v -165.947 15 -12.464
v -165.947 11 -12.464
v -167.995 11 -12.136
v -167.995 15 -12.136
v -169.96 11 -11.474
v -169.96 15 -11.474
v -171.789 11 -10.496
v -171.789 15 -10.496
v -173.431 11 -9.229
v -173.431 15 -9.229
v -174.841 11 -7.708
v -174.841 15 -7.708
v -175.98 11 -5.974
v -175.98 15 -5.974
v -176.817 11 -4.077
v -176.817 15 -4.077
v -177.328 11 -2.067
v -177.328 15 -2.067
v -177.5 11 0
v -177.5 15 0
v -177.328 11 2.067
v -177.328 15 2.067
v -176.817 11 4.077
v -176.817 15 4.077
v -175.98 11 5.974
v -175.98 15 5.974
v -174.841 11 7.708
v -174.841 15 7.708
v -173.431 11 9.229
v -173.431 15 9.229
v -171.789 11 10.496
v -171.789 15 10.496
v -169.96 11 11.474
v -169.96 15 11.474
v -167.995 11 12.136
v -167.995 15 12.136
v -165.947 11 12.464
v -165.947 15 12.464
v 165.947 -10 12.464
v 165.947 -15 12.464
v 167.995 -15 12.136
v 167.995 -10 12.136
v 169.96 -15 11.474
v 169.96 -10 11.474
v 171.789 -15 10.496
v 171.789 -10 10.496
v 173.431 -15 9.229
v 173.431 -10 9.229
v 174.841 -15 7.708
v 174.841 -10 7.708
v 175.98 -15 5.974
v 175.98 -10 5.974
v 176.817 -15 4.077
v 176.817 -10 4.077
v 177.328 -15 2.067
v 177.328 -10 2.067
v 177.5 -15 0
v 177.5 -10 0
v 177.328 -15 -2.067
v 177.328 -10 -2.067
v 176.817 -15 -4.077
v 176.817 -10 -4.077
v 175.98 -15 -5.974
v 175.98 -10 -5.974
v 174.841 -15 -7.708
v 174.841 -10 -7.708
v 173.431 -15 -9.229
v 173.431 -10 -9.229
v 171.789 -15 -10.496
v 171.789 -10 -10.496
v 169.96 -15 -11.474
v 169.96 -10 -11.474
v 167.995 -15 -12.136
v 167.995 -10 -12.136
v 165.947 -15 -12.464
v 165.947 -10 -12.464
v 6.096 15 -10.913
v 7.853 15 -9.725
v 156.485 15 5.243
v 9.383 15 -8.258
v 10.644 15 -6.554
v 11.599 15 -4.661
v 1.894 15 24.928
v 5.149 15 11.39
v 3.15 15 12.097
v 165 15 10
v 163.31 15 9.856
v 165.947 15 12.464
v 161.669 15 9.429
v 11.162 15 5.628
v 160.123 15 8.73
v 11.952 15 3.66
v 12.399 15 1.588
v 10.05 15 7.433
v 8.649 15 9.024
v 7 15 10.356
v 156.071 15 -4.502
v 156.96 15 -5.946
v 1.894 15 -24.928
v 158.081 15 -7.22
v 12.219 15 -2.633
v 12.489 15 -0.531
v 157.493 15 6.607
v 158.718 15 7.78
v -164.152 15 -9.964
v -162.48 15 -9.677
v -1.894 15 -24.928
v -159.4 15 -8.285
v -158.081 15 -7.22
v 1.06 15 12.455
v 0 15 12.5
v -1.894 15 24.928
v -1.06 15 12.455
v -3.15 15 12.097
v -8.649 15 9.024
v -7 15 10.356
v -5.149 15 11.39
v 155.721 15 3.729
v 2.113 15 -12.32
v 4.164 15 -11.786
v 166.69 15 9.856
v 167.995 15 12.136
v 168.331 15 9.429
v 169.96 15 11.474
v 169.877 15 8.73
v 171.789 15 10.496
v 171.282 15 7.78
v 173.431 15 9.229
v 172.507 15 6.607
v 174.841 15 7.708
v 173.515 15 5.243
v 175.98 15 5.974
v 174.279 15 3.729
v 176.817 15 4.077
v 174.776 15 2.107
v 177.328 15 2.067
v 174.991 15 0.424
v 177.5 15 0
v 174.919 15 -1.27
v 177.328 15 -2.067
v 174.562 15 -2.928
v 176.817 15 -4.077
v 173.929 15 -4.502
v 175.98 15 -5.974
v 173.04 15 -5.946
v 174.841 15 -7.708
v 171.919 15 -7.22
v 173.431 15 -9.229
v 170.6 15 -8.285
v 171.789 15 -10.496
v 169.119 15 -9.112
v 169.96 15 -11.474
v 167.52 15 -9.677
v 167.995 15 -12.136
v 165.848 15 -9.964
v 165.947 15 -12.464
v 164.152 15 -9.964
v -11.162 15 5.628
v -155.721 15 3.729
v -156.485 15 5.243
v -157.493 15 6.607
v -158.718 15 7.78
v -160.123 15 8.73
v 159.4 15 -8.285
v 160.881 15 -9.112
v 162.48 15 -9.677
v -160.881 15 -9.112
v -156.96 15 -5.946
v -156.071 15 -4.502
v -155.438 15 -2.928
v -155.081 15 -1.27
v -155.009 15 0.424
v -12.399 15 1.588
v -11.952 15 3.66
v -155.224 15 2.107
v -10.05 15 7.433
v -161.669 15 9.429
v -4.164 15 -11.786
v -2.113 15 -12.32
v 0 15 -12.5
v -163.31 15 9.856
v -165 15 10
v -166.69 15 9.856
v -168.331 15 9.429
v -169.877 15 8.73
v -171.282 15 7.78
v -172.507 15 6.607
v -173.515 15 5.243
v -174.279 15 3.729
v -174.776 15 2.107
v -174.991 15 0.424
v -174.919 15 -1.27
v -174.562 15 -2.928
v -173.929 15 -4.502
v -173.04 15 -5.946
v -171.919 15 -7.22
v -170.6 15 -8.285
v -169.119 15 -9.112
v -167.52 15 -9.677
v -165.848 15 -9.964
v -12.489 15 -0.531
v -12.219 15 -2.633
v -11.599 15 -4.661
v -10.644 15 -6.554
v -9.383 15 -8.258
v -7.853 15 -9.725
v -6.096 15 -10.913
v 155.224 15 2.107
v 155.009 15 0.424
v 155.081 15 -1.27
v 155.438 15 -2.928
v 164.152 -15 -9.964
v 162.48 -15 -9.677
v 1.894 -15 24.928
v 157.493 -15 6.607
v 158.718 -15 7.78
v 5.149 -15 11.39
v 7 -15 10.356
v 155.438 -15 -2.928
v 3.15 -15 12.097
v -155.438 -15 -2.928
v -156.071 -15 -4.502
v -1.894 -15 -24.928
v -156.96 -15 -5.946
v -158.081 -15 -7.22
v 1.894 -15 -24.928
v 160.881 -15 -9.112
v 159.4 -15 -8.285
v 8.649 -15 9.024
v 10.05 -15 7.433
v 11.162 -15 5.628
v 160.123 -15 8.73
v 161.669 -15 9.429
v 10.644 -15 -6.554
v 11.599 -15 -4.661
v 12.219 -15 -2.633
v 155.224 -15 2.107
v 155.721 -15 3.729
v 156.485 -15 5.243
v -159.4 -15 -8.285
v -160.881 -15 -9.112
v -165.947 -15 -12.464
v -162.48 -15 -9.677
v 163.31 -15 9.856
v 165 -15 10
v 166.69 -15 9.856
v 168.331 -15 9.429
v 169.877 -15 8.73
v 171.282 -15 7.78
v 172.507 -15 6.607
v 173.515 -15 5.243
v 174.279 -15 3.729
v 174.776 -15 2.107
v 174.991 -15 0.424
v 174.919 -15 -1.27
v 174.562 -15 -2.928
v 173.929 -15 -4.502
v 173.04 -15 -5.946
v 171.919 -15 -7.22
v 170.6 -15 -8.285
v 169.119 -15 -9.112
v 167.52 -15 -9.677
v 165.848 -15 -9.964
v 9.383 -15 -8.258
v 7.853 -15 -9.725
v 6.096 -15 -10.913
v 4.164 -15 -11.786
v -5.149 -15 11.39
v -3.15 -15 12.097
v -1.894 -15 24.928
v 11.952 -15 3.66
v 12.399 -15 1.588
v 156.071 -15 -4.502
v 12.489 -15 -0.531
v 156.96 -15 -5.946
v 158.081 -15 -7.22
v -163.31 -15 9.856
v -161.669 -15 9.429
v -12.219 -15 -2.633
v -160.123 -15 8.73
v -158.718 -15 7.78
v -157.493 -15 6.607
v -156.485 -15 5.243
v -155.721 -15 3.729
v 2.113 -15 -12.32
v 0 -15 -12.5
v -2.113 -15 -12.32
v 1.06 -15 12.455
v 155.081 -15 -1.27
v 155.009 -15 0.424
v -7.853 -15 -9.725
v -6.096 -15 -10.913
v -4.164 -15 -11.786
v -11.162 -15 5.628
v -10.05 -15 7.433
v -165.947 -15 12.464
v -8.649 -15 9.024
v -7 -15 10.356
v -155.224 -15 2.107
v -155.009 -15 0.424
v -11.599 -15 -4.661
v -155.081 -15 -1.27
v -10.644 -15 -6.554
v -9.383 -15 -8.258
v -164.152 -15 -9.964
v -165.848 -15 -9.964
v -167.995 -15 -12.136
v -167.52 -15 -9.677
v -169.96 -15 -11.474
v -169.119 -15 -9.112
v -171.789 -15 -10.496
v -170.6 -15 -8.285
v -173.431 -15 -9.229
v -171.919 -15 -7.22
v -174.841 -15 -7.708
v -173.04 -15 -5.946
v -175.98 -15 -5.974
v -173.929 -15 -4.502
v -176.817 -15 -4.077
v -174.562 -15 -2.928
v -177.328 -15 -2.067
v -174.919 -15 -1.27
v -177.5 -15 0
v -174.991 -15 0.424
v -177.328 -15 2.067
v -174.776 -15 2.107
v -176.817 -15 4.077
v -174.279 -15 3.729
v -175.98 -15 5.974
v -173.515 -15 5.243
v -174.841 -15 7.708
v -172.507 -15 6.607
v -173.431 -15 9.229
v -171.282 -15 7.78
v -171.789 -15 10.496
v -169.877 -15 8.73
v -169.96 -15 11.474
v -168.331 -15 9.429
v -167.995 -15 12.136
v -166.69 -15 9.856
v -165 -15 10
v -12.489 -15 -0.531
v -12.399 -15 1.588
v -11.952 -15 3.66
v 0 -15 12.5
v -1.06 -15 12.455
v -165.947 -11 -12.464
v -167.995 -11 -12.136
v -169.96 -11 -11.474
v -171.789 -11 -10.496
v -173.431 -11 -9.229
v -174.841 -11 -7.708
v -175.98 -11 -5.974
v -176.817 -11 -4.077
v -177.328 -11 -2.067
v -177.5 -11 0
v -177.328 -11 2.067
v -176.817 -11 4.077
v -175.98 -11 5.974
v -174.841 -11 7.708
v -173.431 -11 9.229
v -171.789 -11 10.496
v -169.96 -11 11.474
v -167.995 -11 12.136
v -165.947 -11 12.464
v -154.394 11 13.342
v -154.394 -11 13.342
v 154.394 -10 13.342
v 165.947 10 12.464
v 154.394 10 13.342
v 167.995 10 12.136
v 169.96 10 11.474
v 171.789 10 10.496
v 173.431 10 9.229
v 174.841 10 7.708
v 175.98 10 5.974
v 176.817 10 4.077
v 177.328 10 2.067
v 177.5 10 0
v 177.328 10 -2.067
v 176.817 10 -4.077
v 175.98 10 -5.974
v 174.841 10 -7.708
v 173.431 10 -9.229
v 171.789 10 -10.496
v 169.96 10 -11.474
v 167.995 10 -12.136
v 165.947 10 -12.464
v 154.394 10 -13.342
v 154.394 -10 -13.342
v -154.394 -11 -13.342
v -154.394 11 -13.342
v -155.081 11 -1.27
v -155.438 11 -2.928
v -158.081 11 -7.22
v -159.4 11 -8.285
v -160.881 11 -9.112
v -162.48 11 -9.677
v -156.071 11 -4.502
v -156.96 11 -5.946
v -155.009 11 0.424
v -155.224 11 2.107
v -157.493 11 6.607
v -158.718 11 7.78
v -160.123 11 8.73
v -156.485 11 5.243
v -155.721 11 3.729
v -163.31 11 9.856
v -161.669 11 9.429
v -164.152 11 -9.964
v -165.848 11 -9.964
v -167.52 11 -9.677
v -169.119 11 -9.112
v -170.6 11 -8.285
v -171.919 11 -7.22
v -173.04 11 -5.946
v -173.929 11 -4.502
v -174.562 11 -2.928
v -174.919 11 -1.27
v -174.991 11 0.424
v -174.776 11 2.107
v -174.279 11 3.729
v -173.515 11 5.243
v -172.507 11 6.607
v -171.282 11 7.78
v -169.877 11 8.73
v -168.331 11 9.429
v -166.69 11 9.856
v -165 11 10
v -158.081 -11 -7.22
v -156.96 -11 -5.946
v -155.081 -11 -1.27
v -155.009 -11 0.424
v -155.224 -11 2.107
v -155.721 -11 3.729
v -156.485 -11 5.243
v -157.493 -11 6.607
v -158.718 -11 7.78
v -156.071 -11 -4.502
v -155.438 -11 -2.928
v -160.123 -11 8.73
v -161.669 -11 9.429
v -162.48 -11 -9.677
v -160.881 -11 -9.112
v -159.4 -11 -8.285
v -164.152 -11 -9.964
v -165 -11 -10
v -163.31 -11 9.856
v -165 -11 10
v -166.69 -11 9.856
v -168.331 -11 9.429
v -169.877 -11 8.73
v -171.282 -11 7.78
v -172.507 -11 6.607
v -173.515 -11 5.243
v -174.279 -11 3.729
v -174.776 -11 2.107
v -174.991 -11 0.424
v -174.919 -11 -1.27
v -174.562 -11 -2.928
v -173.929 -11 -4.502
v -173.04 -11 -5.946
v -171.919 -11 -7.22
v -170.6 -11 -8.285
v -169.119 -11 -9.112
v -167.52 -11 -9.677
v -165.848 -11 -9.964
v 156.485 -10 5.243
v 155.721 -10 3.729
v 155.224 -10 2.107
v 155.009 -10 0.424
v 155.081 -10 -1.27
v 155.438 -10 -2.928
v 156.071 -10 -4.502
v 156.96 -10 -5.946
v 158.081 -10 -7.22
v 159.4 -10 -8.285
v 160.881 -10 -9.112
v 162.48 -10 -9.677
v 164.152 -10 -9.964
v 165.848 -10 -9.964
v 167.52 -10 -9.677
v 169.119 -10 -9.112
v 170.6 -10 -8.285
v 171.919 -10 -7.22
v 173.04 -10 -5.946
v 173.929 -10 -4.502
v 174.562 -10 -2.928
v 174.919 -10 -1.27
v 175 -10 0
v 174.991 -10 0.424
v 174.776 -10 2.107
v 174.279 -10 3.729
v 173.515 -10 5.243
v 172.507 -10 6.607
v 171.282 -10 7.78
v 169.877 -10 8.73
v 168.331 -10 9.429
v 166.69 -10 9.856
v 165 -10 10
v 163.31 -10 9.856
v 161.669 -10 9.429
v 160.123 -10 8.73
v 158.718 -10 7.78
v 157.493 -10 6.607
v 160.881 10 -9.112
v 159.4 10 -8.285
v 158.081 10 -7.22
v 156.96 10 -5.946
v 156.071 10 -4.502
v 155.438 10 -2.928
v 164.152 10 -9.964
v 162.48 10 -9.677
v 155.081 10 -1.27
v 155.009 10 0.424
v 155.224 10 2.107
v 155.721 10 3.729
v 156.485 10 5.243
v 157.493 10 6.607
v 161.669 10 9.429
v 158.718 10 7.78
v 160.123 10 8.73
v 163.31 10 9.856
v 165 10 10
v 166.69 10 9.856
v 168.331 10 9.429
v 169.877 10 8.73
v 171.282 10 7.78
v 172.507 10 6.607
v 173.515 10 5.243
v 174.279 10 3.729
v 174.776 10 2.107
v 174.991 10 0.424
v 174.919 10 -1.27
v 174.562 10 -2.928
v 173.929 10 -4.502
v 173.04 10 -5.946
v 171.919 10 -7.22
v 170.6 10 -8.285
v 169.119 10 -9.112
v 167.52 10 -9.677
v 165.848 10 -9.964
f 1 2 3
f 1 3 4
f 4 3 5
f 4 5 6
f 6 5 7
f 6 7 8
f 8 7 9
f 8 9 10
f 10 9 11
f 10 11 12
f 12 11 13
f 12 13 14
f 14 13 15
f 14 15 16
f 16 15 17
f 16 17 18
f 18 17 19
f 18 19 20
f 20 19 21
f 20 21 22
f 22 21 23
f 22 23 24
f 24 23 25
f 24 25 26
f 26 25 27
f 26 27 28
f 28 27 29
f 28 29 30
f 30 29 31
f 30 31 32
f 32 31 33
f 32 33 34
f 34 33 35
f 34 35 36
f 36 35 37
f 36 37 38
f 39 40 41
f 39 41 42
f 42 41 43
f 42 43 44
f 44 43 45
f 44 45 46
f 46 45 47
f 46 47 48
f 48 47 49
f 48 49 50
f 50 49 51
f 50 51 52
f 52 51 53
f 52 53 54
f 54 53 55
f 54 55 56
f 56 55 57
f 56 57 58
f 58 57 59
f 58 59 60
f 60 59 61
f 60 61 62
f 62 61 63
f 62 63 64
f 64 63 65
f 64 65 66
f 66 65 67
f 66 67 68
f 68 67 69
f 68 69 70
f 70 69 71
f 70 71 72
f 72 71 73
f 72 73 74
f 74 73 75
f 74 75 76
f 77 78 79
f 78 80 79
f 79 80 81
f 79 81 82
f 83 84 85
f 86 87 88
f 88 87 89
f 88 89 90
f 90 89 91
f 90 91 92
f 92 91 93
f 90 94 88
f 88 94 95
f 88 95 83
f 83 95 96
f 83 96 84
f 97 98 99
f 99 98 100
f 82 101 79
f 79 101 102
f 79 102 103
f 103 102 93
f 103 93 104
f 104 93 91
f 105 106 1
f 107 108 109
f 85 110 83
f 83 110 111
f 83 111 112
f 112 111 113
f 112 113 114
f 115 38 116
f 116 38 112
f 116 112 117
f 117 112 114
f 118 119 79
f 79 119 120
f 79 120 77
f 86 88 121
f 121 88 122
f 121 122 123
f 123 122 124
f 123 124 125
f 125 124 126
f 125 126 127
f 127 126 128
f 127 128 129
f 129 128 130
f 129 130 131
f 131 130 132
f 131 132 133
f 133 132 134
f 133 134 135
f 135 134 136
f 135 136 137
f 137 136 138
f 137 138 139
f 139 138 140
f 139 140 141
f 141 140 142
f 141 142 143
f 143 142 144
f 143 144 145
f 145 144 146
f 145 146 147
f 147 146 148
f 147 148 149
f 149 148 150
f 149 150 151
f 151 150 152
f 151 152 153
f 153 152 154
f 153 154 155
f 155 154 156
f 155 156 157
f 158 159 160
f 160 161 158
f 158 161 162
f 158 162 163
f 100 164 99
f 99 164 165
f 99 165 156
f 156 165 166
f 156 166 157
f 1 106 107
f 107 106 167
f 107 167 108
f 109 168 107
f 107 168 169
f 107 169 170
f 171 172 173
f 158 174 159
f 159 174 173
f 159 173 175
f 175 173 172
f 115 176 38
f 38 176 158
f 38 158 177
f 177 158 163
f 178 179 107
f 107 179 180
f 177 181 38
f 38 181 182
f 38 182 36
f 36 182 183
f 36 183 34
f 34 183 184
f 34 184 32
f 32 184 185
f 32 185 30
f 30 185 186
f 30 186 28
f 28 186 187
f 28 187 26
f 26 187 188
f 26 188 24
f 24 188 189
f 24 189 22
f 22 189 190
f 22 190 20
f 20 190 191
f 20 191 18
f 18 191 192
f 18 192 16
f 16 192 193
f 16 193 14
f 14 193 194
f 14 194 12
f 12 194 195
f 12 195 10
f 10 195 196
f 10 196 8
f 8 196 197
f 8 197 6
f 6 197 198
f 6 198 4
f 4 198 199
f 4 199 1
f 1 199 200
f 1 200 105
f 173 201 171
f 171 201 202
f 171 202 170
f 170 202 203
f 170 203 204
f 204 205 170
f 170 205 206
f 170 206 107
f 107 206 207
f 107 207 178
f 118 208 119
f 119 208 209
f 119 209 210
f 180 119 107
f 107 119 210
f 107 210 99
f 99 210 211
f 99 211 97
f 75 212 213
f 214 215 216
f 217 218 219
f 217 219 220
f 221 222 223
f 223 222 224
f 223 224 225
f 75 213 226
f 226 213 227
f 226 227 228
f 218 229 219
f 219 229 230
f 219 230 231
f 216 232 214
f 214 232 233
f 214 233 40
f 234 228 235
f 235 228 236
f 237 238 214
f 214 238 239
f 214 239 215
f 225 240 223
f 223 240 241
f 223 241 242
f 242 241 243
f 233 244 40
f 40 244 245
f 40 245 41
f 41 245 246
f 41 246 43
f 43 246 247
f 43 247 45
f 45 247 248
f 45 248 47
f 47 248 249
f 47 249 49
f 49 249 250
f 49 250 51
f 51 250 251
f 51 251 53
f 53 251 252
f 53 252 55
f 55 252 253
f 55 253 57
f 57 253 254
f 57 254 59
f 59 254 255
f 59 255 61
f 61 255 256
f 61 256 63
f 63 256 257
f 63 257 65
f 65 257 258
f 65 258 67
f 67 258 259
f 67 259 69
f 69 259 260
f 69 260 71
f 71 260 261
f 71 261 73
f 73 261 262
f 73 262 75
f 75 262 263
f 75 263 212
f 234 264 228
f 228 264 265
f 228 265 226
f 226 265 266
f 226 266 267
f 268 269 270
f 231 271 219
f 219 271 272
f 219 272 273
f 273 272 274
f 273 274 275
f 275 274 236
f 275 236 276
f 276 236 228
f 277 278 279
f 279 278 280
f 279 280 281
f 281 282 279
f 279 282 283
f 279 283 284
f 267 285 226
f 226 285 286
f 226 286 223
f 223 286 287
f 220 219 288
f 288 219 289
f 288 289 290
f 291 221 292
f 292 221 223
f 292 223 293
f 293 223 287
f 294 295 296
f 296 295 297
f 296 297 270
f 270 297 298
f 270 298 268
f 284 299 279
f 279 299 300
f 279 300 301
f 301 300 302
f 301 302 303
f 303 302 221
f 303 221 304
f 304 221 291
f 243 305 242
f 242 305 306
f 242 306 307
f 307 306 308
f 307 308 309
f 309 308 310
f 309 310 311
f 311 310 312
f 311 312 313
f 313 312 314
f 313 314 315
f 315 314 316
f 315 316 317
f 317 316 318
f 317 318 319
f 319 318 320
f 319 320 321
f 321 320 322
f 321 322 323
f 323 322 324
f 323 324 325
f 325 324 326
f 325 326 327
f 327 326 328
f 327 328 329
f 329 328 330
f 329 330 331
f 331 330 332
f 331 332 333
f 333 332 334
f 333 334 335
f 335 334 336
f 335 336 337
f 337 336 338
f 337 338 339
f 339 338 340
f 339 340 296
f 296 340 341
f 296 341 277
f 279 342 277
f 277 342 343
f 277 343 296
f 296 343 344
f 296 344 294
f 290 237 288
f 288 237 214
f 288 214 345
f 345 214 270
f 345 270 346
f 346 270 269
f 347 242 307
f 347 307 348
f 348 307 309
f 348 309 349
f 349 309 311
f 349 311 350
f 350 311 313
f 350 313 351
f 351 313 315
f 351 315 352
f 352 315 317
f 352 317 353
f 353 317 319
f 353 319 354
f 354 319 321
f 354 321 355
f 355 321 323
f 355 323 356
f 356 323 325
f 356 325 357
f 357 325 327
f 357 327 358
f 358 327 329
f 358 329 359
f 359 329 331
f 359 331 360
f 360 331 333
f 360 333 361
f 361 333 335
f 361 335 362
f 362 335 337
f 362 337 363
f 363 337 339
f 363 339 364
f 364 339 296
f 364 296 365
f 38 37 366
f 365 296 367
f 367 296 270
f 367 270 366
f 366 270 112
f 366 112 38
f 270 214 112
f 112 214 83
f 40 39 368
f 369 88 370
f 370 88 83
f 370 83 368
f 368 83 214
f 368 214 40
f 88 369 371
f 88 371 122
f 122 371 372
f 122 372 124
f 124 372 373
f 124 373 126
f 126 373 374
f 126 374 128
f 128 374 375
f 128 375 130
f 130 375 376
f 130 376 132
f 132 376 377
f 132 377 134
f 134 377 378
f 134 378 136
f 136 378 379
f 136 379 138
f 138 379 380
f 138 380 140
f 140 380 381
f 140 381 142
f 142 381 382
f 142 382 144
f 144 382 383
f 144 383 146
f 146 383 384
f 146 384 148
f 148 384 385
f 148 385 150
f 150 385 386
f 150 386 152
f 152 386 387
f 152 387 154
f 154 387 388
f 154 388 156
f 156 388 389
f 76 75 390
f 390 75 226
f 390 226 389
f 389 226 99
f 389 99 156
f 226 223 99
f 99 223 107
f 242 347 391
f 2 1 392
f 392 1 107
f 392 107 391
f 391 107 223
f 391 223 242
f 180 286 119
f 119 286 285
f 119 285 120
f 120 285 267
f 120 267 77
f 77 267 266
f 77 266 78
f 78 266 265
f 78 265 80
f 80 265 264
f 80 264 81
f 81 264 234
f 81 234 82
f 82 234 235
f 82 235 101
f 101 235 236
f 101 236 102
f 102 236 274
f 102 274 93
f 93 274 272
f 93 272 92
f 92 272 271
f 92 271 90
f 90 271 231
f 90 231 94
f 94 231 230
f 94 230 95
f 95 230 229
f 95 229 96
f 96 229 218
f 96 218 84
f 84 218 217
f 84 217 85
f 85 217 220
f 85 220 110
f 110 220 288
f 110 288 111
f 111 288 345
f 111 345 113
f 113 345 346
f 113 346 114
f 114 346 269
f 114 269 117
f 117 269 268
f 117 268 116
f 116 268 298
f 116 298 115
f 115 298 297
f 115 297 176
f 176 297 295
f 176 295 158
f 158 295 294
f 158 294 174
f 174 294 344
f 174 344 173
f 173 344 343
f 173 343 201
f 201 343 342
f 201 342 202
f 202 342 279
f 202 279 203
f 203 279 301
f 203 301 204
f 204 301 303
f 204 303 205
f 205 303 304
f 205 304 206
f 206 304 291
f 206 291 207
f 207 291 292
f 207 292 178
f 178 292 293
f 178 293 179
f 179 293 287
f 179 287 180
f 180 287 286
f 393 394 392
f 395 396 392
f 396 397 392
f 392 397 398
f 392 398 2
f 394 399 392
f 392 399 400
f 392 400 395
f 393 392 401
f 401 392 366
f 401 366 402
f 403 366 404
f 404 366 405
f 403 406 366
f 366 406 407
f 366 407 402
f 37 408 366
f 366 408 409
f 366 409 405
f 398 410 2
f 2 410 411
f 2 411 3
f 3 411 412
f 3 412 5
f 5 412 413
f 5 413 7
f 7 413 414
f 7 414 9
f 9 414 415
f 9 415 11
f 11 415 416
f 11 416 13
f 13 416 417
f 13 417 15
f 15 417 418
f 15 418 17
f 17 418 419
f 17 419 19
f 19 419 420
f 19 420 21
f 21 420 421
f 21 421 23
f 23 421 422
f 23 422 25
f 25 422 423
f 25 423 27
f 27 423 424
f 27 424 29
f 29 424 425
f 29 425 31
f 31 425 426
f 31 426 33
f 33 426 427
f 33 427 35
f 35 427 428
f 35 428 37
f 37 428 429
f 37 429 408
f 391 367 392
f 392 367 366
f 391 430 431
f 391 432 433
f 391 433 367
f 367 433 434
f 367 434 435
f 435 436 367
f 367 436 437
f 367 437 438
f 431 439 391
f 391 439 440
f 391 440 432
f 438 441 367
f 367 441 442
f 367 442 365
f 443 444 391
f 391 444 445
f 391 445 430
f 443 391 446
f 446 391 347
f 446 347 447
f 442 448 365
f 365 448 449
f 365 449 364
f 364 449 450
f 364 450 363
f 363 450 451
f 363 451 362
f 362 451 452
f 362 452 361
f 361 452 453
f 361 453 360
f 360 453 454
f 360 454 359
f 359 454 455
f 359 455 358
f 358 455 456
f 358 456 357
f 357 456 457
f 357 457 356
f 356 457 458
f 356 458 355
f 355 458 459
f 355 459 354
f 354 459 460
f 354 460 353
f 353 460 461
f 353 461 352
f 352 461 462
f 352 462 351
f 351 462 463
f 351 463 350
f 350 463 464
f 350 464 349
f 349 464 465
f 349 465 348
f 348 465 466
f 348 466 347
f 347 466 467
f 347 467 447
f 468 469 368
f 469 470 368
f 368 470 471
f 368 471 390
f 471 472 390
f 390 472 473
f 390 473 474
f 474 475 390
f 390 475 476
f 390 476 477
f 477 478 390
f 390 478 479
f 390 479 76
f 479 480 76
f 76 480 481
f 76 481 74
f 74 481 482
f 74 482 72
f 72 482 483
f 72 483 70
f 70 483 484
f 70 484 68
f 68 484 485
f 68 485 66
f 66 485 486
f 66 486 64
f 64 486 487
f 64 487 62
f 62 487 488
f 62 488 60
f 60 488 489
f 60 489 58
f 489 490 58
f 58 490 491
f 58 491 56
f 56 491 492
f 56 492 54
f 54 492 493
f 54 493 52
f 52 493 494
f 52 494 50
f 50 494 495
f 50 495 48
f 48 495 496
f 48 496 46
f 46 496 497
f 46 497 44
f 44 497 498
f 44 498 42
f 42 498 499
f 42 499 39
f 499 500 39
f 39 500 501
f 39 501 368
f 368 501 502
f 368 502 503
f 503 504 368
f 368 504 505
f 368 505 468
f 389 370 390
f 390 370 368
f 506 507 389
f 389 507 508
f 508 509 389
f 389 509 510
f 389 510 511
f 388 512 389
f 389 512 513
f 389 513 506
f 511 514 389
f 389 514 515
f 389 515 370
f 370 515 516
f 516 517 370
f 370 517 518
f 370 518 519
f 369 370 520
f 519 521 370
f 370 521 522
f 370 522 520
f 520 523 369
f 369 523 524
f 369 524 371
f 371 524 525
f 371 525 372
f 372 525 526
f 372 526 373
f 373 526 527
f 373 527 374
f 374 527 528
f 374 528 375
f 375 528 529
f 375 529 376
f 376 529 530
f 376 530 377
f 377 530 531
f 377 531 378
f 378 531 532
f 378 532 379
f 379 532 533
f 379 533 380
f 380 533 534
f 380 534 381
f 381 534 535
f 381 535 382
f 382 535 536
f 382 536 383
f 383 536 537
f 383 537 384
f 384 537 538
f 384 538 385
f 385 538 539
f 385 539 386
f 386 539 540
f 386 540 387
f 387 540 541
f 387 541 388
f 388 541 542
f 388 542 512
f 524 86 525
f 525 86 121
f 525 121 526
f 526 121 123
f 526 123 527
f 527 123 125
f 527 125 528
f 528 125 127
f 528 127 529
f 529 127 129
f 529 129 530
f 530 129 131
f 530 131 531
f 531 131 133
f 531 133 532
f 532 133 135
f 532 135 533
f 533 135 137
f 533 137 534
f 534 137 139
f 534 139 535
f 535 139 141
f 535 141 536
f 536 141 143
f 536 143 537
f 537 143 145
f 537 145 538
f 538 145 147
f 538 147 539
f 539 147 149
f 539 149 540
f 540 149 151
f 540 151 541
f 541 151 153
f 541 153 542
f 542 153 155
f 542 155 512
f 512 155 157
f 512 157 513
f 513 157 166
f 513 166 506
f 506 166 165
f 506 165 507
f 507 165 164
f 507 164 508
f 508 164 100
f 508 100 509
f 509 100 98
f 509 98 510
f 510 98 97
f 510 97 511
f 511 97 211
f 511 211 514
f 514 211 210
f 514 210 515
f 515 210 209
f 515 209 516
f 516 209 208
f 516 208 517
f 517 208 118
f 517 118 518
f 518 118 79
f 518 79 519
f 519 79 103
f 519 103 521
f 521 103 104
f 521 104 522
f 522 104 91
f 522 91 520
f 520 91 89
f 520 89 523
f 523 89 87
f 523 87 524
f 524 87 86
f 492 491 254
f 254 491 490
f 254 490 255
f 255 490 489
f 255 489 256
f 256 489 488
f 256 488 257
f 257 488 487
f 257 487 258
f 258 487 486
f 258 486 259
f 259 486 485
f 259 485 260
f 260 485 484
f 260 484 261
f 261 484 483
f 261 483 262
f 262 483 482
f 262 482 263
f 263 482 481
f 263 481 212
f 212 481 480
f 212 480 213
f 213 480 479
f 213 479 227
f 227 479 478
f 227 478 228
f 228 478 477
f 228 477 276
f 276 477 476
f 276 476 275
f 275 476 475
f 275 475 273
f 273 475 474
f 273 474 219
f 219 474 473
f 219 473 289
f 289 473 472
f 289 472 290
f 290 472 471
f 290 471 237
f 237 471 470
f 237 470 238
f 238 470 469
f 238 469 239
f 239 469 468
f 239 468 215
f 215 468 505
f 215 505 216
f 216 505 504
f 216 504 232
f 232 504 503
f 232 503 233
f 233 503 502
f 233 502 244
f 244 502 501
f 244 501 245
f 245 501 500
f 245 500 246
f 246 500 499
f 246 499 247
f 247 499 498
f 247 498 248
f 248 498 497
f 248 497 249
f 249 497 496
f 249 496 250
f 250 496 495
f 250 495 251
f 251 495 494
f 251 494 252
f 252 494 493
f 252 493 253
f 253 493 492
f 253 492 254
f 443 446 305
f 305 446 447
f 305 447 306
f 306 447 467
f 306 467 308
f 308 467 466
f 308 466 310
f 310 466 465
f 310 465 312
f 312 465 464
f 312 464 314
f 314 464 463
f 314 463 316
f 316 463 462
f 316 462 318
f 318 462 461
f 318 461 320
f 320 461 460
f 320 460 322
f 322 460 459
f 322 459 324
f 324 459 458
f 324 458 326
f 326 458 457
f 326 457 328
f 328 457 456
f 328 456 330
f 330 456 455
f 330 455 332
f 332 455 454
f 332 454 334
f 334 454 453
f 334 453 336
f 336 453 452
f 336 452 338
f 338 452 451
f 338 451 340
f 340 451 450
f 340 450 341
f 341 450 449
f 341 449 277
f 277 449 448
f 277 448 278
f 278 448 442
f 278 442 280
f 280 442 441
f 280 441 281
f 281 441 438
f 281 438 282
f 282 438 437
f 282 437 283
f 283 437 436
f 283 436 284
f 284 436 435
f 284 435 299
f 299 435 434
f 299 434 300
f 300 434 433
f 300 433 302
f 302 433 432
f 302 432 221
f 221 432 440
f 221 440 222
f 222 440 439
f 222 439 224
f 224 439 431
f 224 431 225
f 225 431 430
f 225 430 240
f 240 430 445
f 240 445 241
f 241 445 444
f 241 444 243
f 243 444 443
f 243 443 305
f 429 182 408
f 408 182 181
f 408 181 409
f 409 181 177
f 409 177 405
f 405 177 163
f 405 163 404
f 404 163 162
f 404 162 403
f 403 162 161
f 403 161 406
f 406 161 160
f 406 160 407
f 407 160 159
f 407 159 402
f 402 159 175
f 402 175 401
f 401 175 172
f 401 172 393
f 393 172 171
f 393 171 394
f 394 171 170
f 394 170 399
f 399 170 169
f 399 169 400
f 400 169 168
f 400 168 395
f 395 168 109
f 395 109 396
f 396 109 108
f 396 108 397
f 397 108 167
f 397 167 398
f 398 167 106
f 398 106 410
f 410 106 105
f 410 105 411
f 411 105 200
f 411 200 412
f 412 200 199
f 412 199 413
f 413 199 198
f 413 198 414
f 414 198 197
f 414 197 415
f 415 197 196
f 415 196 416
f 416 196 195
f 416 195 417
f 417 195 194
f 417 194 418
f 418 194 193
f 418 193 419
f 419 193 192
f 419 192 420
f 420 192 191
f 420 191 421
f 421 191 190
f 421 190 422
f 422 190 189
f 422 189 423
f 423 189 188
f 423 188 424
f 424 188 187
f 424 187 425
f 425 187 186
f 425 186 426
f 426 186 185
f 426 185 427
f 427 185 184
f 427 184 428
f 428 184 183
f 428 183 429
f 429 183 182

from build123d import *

# Parameters (mm, degrees)
CROQUIS1_R                 = 12.5
SALIENTE_EXTRUIR1_DEPTH    = 15
CROQUIS2_W                 = 23.106060606
CROQUIS2_H                 = 20
CROQUIS2_H_2               = 22
CORTAR_EXTRUIR1_DEPTH      = 26
CORTAR_EXTRUIR1_DEPTH_BACK = 26
CROQUIS3_R                 = 10
CORTAR_EXTRUIR2_DEPTH      = 16
CORTAR_EXTRUIR2_DEPTH_BACK = 16


with BuildPart() as part:
    # Croquis1 → Saliente-Extruir1 (new body, symmetric)
    with BuildSketch(Plane(origin=(0, 0, 0), x_dir=(1, 0, 0), z_dir=(0, 1, 0))):
        with BuildLine():
            Line((-165.946969697, 12.464078321), (-1.893939394, 24.928156642))
            ThreePointArc((-1.893939394, 24.928156642), (0, 25), (1.893939394, 24.928156642))
            Line((1.893939394, 24.928156642), (165.946969697, 12.464078321))
            ThreePointArc((165.946969697, 12.464078321), (177.5, 0), (165.946969697, -12.464078321))
            Line((165.946969697, -12.464078321), (1.893939394, -24.928156642))
            ThreePointArc((1.893939394, -24.928156642), (0, -25), (-1.893939394, -24.928156642))
            Line((-1.893939394, -24.928156642), (-165.946969697, -12.464078321))
            ThreePointArc((-165.946969697, -12.464078321), (-177.5, 0), (-165.946969697, 12.464078321))
        make_face()
        Circle(CROQUIS1_R, mode=Mode.SUBTRACT)
    extrude(amount=SALIENTE_EXTRUIR1_DEPTH, both=True)

    # Croquis2 → Cortar-Extruir1 (cut, two sides)
    with BuildSketch(Plane.XY) as cortar_extruir1_sk:
        with Locations((165.946969697, 0)):
            Rectangle(CROQUIS2_W, CROQUIS2_H)
        with Locations((-165.946969697, 0)):
            Rectangle(CROQUIS2_W, CROQUIS2_H_2)
    extrude(amount=CORTAR_EXTRUIR1_DEPTH, mode=Mode.SUBTRACT)
    extrude(cortar_extruir1_sk.sketch, amount=-CORTAR_EXTRUIR1_DEPTH_BACK, mode=Mode.SUBTRACT)

    # Croquis3 → Cortar-Extruir2 (cut, two sides)
    with BuildSketch(Plane(origin=(0, 0, 0), x_dir=(1, 0, 0), z_dir=(0, 1, 0))) as cortar_extruir2_sk:
        with Locations((-165, 0)):
            Circle(CROQUIS3_R)
        with Locations((165, 0)):
            Circle(CROQUIS3_R)
    extrude(amount=CORTAR_EXTRUIR2_DEPTH, mode=Mode.SUBTRACT)
    extrude(cortar_extruir2_sk.sketch, amount=-CORTAR_EXTRUIR2_DEPTH_BACK, mode=Mode.SUBTRACT)


solid = part.part
